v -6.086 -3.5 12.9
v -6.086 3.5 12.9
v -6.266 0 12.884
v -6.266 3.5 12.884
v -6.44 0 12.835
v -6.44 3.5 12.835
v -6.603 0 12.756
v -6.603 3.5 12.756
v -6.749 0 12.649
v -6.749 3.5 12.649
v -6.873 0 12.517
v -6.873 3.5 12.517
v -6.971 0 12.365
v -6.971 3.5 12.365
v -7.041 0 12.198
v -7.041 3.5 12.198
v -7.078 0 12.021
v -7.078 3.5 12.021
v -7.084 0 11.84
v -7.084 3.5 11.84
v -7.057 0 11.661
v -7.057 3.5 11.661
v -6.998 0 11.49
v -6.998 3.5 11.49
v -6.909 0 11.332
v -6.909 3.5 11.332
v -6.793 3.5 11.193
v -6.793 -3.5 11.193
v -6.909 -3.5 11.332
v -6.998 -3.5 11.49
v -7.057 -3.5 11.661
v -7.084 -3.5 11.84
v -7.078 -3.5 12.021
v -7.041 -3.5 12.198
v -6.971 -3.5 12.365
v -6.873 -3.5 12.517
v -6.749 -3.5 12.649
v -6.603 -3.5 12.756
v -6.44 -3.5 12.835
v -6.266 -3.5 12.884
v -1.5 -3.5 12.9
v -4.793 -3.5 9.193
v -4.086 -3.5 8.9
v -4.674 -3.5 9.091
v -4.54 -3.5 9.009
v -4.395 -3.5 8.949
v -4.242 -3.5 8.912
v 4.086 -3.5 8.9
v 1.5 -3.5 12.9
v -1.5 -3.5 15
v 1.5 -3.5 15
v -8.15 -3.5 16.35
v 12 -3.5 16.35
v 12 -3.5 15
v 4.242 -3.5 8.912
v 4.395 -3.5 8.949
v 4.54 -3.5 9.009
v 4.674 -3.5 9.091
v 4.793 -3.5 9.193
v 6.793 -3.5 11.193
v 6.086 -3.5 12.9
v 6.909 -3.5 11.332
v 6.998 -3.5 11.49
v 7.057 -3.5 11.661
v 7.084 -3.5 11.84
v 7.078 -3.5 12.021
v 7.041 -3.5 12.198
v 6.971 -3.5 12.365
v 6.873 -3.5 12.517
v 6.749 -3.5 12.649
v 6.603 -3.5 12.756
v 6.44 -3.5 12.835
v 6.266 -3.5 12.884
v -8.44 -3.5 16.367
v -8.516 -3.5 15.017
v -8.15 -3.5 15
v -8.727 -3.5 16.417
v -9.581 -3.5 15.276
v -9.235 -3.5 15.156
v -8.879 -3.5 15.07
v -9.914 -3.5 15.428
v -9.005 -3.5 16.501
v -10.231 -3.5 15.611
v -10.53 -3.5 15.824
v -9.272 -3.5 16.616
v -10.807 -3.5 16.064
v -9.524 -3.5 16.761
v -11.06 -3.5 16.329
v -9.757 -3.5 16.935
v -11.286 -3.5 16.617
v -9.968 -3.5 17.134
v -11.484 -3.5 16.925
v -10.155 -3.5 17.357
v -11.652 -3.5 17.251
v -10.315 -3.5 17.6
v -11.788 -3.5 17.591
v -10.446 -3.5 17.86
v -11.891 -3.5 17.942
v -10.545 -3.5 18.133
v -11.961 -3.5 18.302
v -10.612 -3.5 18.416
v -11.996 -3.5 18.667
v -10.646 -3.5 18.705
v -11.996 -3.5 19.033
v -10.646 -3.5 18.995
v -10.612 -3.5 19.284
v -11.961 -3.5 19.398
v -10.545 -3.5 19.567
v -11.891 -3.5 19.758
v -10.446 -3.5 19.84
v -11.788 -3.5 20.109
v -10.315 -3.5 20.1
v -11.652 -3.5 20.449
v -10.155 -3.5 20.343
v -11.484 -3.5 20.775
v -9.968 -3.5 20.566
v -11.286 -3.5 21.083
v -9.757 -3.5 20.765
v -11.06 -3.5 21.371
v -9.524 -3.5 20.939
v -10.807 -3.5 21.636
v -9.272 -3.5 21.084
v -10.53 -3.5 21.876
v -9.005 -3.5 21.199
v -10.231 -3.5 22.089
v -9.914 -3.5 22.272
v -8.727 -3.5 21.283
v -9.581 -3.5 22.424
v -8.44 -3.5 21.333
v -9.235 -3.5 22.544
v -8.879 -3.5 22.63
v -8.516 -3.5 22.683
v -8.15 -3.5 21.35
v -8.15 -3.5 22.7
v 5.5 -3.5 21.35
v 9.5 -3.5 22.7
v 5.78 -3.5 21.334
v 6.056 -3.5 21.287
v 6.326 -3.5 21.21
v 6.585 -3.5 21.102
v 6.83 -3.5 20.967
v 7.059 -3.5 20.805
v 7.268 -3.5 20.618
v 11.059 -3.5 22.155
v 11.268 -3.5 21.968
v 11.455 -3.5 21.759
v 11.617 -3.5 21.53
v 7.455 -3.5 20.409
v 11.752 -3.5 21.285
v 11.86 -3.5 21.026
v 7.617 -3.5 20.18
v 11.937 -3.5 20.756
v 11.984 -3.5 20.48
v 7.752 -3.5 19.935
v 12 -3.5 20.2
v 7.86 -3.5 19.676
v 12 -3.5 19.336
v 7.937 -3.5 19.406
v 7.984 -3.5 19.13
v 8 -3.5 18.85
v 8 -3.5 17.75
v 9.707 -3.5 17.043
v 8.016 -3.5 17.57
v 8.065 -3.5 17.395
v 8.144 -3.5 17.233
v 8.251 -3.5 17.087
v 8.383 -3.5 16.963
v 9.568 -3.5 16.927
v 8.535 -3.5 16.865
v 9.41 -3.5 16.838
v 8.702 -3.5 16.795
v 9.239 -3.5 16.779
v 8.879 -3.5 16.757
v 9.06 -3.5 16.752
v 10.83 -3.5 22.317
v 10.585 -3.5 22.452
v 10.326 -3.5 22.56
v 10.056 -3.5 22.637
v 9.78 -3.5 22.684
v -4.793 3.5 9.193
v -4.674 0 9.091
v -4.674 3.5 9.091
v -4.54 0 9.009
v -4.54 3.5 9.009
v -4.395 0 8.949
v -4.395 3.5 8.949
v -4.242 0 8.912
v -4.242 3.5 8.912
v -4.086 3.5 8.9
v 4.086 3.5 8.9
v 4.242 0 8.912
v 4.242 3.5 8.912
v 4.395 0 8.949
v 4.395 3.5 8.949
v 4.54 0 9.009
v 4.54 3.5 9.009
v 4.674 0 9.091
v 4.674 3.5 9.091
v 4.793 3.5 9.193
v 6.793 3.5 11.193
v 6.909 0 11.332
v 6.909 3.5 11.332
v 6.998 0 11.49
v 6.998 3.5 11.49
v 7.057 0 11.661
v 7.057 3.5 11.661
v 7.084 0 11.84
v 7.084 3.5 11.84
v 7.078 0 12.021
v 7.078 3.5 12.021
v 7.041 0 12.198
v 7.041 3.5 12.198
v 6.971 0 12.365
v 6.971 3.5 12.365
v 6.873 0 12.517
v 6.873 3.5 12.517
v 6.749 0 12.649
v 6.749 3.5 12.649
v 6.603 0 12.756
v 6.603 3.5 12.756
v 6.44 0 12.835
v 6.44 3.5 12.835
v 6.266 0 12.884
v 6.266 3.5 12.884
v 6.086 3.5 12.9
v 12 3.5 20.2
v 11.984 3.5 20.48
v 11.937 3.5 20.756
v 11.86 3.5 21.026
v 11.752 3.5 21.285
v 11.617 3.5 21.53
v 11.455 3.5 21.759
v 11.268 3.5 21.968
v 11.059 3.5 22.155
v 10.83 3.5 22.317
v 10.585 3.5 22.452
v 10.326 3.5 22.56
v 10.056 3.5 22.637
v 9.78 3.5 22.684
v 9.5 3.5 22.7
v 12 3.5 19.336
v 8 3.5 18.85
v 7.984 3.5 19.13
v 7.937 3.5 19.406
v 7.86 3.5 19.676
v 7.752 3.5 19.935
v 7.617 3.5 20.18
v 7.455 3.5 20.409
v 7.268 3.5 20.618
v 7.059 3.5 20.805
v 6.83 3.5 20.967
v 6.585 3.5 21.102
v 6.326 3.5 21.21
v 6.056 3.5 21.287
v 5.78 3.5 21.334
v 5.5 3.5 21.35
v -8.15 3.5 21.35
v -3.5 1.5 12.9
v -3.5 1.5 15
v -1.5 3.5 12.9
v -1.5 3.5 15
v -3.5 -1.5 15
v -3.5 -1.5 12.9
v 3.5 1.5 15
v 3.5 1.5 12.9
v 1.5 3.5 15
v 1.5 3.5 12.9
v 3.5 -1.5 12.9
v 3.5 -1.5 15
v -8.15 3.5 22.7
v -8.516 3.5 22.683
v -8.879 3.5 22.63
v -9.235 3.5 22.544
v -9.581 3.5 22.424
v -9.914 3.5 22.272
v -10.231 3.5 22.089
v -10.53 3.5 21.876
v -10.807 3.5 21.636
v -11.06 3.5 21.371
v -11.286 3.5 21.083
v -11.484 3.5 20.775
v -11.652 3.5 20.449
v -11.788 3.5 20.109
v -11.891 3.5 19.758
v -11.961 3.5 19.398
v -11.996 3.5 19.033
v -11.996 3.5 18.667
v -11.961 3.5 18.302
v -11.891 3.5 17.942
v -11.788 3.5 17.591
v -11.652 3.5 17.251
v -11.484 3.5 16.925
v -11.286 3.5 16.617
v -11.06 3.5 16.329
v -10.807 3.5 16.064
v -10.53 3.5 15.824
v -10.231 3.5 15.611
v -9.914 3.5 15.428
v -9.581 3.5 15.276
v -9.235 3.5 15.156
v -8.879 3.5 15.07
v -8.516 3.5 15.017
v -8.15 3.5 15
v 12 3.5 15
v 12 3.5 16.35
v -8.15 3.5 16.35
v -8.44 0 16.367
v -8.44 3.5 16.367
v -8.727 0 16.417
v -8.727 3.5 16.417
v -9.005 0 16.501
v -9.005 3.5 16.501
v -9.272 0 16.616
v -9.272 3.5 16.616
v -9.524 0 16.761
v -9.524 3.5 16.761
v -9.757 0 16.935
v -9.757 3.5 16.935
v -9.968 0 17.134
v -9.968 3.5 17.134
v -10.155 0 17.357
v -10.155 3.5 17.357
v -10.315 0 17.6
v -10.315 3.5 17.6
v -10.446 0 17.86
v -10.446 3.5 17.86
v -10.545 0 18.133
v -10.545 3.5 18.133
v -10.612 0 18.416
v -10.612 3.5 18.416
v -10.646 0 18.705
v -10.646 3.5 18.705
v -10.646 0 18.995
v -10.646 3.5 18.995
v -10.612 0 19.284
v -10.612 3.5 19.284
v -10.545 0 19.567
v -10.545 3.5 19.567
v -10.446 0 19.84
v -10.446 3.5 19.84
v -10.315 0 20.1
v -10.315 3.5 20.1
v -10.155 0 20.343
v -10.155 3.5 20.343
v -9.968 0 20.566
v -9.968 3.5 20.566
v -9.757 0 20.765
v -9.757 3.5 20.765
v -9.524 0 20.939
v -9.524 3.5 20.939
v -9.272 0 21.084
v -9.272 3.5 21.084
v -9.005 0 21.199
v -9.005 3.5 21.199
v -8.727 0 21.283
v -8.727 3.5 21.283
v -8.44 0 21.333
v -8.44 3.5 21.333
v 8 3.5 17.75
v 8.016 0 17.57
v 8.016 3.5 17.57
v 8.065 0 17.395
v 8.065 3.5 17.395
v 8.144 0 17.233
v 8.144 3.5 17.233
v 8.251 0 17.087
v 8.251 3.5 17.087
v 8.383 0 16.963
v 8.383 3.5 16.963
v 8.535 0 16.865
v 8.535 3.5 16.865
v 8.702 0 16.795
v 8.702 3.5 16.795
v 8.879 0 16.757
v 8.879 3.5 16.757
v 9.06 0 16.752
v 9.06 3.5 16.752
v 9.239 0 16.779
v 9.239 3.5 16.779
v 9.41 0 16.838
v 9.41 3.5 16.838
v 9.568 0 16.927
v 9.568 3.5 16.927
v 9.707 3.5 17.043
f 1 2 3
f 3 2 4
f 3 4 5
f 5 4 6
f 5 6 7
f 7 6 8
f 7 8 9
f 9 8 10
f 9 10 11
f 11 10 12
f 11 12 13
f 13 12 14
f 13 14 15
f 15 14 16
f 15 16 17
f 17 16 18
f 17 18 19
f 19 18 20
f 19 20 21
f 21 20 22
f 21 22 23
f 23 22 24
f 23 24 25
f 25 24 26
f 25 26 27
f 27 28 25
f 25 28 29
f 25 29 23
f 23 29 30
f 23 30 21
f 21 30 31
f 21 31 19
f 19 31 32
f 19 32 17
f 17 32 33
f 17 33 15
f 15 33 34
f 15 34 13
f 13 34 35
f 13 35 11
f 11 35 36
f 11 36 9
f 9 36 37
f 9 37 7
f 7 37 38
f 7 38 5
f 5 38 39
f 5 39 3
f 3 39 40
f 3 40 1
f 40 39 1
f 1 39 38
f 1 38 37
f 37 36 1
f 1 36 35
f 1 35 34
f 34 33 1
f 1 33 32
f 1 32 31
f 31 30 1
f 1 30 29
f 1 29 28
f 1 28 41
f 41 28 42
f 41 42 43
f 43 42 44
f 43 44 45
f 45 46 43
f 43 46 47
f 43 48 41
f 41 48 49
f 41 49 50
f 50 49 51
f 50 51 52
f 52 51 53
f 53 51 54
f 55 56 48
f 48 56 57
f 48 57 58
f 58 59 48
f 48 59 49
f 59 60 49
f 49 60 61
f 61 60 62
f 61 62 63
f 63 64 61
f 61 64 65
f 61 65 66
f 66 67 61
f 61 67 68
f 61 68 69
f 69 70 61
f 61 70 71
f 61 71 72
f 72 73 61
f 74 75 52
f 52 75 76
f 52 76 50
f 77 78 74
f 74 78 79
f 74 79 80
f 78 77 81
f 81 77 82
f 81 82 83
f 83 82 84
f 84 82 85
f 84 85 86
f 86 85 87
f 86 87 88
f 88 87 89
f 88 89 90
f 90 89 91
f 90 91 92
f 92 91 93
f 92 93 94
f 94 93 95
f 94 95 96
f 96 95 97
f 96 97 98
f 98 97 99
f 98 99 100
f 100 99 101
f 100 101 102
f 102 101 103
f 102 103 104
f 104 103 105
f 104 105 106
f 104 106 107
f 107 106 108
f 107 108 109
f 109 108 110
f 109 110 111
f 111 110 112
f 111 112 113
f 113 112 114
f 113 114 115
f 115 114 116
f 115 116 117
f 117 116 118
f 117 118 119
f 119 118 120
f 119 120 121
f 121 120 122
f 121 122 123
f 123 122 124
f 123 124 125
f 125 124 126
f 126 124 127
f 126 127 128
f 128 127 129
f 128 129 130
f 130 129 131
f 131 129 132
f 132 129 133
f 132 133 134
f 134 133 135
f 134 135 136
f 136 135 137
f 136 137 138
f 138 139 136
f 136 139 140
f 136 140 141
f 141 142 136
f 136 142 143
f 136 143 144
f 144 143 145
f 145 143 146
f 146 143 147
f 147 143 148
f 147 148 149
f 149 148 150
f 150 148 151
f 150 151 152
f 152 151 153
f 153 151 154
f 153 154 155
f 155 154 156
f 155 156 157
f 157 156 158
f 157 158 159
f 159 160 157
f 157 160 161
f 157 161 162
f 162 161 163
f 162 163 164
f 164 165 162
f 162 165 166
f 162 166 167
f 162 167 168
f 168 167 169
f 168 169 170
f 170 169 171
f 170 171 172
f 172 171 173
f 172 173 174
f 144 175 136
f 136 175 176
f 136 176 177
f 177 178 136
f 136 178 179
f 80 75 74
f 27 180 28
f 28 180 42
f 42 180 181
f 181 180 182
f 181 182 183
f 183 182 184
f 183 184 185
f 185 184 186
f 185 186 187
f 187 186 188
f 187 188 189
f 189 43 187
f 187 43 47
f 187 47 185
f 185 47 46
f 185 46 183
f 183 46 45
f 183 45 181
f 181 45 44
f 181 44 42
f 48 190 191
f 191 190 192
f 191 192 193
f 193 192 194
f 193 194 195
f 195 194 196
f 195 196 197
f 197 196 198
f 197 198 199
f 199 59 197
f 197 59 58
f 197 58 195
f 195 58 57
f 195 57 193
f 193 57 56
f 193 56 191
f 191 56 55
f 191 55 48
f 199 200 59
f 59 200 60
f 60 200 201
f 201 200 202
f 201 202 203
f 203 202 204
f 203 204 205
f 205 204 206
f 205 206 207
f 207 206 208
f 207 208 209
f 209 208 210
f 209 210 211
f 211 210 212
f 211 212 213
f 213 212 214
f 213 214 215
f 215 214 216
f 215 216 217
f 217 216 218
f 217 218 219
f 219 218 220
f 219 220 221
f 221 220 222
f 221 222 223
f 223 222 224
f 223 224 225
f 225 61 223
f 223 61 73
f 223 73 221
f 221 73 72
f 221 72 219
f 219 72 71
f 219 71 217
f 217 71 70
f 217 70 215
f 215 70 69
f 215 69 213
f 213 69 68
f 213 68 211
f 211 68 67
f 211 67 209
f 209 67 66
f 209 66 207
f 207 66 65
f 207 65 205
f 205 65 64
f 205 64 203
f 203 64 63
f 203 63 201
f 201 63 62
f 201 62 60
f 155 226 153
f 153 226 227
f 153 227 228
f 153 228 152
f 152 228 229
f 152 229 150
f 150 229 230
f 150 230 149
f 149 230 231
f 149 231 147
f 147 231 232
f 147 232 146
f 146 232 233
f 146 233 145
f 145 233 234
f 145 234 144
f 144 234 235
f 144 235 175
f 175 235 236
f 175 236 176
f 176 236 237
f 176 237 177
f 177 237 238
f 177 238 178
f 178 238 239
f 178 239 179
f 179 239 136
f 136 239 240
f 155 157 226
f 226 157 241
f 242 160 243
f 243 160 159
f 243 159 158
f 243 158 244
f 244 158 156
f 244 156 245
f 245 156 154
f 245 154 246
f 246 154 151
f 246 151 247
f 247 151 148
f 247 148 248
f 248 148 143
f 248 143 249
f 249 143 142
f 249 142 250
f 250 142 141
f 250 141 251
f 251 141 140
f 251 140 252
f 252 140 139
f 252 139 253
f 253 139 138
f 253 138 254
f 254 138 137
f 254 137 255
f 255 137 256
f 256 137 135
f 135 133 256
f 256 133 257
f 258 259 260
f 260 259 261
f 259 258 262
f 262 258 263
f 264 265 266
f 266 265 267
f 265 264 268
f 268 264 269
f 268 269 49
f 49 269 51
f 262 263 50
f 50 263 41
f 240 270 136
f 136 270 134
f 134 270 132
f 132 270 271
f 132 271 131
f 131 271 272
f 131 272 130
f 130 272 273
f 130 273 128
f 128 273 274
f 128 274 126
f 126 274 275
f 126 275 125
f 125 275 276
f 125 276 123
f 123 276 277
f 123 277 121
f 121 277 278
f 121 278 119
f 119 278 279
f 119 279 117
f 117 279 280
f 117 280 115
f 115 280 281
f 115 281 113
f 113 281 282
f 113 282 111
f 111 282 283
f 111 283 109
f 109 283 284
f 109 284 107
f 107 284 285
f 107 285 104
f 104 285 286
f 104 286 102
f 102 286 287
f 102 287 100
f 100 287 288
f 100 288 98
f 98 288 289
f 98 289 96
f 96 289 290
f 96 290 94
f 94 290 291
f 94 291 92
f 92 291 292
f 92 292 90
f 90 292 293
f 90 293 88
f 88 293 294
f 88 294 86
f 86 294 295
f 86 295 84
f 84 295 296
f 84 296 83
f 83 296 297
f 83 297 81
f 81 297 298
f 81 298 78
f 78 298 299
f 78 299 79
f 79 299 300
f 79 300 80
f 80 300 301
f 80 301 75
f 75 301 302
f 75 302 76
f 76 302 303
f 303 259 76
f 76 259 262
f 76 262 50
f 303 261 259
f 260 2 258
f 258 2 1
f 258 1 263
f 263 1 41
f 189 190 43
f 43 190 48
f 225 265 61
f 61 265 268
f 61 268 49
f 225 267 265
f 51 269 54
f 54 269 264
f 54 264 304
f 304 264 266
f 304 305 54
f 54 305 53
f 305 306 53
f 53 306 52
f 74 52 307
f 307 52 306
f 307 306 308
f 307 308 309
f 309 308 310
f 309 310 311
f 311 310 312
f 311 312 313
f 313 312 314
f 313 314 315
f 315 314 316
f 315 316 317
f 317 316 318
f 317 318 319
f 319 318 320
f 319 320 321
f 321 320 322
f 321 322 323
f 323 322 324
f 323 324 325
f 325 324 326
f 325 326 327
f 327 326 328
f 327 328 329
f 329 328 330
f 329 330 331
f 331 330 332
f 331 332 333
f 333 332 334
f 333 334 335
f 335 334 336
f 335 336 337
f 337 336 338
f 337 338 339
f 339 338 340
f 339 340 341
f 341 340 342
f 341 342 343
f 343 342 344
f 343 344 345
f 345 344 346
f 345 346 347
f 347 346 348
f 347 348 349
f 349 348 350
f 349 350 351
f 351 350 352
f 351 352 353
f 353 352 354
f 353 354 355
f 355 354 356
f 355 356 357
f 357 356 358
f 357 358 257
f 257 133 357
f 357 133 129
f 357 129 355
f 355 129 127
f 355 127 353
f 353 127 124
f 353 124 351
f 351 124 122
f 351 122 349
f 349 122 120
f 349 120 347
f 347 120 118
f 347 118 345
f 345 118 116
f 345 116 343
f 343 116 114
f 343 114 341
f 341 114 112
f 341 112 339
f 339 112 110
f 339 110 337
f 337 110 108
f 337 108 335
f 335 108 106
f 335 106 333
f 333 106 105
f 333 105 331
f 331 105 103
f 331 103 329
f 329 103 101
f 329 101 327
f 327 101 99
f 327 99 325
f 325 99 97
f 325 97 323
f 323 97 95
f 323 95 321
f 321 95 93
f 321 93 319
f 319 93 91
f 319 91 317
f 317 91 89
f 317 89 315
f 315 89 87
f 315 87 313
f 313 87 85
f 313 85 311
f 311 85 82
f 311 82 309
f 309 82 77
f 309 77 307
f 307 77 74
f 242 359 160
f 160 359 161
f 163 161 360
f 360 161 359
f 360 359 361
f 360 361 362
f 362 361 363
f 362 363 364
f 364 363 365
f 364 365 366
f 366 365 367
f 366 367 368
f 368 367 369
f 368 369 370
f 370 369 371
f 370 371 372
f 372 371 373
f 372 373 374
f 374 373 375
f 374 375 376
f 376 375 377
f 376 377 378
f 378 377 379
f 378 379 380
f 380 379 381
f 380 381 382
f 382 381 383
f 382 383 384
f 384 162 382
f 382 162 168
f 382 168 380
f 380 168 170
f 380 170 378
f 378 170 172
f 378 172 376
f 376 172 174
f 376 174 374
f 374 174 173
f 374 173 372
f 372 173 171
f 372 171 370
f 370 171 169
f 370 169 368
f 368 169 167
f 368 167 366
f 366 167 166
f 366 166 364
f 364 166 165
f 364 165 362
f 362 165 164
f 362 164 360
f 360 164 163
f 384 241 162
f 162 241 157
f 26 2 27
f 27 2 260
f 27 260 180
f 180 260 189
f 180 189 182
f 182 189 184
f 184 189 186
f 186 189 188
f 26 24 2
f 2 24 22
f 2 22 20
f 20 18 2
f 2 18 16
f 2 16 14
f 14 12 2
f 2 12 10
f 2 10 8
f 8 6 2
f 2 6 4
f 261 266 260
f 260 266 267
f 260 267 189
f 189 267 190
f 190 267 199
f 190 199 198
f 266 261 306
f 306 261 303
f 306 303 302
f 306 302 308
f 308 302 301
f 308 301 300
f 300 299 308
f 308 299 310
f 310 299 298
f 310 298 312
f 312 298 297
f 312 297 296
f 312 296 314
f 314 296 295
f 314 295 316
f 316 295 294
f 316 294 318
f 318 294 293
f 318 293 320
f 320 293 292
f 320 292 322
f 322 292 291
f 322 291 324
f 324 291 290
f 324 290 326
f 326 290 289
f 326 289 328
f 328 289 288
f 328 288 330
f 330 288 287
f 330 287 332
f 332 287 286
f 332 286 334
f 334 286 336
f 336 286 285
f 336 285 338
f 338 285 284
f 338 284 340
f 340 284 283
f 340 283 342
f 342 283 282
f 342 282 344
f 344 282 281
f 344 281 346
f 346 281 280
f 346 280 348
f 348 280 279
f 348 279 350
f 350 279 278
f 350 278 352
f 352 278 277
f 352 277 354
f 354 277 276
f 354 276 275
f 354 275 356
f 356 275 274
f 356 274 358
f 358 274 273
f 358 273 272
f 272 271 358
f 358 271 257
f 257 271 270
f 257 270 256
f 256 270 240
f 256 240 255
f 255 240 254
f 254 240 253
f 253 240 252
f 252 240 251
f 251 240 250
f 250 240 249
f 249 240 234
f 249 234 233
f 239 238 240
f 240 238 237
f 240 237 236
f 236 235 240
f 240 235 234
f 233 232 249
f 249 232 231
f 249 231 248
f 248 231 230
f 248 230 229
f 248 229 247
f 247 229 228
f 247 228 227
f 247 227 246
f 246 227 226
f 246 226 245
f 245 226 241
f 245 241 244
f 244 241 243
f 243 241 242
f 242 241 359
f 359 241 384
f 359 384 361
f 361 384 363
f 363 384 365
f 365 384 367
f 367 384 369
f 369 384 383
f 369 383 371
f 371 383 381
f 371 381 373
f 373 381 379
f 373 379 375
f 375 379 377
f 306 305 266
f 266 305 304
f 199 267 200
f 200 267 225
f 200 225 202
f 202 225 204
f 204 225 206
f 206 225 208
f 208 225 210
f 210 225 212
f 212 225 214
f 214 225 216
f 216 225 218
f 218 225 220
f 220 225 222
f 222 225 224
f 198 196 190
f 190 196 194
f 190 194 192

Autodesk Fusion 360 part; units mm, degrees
sketch "Sketch1" plane through (0, 0, 0) normal (0, 1, 0) x (1, 0, 0)
  line L0 (15, -15) -> (-15, -15)
  line L1 (-15, -15) -> (-15, 15)
  line L2 (-15, 15) -> (15, 15)
  line L3 (15, 15) -> (15, -15)
  line L4 (15, -15) -> (-15, 15) construction
  line L5 (-15, -15) -> (15, 15) construction
  line L6 (-4.05, -15) -> (-4.05, -12.8)
  line L7 (-4.05, -12.8) -> (-11.2444, -12.8)
  line L8 (-11.2444, -12.8) -> (-4.3444, -5.9)
  line L9 (-4.3444, -5.9) -> (0, -5.9)
  line L10 (0, 0) -> (0, -15) construction
  line L11 (4.05, -15) -> (4.05, -12.8)
  line L12 (4.05, -12.8) -> (11.2444, -12.8)
  line L13 (11.2444, -12.8) -> (4.3444, -5.9)
  line L14 (4.3444, -5.9) -> (0, -5.9)
  dimension "d1" = 30
  dimension "d2" = 30
  dimension "d3" = 8.1
  dimension "d4" = 9.1
  dimension "d6" = 2.2
  dimension "d7" = 1.1
sketch "Sketch2" plane through (0, 0, 0) normal (0, 1, 0) x (1, 0, 0)
  line L0 (15, -15) -> (-15, -15) construction
  line L1 (3.5, -15) -> (3.5, -12.9)
  line L2 (3.5, -12.9) -> (8.5, -12.9)
  line L3 (8.5, -12.9) -> (4.5, -8.9)
  line L4 (3.5, -15) -> (12, -15)
  line L5 (12, -15) -> (12, -16.35)
  line L6 (12, -16.35) -> (-8.15, -16.35)
  arc A0 (-8.15, -16.35) -> (-8.15, -21.35) centre (-8.15, -18.85) ccw
  line L7 (-8.15, -21.35) -> (8, -21.35)
  line L8 (8, -21.35) -> (8, -17.75)
  line L9 (9.7071, -17.0429) -> (12, -19.3358)
  line L10 (12, -19.3358) -> (12, -22.7)
  line L11 (12, -22.7) -> (-8.15, -22.7)
  arc A1 (-8.15, -15) -> (-8.15, -22.7) centre (-8.15, -18.85) ccw
  line L12 (-8.15, -15) -> (-3.5, -15)
  line L13 (-3.5, -15) -> (-3.5, -12.9)
  line L14 (-3.5, -12.9) -> (-8.5, -12.9)
  line L15 (-11.2444, -12.8) -> (-4.3444, -5.9) construction
  line L16 (-8.5, -12.9) -> (-4.5, -8.9)
  line L17 (-4.5, -8.9) -> (4.5, -8.9)
  line L18 (-12, -18.85) -> (-12, -26.3495) construction
  line L19 (-15, -15) -> (-15, 15)
  line L20 (15, 15) -> (15, -15)
  line L21 (0, 0) -> (0, -24.1039) construction
  arc A2 (9.7071, -17.0429) -> (8, -17.75) centre (9, -17.75) ccw
  point P0 (8, -15.3358)
  dimension "d8" = 3
  dimension "d9" = 3
  dimension "d12" = 1.35
  dimension "d13" = 4
  dimension "d14" = 7
  dimension "d15" = 17
  dimension "d18" = 4
  dimension "d19" = 5
  dimension "d20" = 45
  dimension "d25" = 1
  dimension "d26" = 1.4
  dimension "d40" = 2.1
extrude "Extrude1" add sketch "Sketch2" along normal mid plane 7
chamfer "Chamfer1" distance 2 angle 45 4 edges at (-3.5, -3.5, 13.95) (3.5, -3.5, 13.95) (3.5, 3.5, 13.95) (-3.5, 3.5, 13.95)
sketch "Sketch3" plane through (0, 0, 0) normal (0, 0, 1) x (1, 0, 0)
  circle A0 centre (0, 0) radius 4
  circle A1 centre (0, 0) radius 8.25
  dimension "d24" = 8
  dimension "d29" = 16.5
fillet "Fillet1" radius 2.5 2 edges at (8, 0, 21.35) (12, 0, 22.7)
fillet "Fillet2" radius 1 4 edges at (8.5, 0, 12.9) (4.5, 0, 8.9) (-4.5, 0, 8.9) (-8.5, 0, 12.9)
sketch "Sketch4" plane through (0, 0, 0) normal (0, 1, 0) x (1, 0, 0)
  line L0 (-1.5, -15) -> (-8.15, -15)
  line L1 (-6.325, -15) -> (-6.325, -14.9)
  arc A0 (-4.825, -15) -> (-6.325, -14.9) centre (-6.325, -26.2) ccw
  line L2 (-6.325, -14.9) -> (-5.7947, -14.9) construction
  dimension "d30" = 0.1
  dimension "d31" = 1.5
equation "d12 = ( 0.45 * 3 ) * 1 mm"
